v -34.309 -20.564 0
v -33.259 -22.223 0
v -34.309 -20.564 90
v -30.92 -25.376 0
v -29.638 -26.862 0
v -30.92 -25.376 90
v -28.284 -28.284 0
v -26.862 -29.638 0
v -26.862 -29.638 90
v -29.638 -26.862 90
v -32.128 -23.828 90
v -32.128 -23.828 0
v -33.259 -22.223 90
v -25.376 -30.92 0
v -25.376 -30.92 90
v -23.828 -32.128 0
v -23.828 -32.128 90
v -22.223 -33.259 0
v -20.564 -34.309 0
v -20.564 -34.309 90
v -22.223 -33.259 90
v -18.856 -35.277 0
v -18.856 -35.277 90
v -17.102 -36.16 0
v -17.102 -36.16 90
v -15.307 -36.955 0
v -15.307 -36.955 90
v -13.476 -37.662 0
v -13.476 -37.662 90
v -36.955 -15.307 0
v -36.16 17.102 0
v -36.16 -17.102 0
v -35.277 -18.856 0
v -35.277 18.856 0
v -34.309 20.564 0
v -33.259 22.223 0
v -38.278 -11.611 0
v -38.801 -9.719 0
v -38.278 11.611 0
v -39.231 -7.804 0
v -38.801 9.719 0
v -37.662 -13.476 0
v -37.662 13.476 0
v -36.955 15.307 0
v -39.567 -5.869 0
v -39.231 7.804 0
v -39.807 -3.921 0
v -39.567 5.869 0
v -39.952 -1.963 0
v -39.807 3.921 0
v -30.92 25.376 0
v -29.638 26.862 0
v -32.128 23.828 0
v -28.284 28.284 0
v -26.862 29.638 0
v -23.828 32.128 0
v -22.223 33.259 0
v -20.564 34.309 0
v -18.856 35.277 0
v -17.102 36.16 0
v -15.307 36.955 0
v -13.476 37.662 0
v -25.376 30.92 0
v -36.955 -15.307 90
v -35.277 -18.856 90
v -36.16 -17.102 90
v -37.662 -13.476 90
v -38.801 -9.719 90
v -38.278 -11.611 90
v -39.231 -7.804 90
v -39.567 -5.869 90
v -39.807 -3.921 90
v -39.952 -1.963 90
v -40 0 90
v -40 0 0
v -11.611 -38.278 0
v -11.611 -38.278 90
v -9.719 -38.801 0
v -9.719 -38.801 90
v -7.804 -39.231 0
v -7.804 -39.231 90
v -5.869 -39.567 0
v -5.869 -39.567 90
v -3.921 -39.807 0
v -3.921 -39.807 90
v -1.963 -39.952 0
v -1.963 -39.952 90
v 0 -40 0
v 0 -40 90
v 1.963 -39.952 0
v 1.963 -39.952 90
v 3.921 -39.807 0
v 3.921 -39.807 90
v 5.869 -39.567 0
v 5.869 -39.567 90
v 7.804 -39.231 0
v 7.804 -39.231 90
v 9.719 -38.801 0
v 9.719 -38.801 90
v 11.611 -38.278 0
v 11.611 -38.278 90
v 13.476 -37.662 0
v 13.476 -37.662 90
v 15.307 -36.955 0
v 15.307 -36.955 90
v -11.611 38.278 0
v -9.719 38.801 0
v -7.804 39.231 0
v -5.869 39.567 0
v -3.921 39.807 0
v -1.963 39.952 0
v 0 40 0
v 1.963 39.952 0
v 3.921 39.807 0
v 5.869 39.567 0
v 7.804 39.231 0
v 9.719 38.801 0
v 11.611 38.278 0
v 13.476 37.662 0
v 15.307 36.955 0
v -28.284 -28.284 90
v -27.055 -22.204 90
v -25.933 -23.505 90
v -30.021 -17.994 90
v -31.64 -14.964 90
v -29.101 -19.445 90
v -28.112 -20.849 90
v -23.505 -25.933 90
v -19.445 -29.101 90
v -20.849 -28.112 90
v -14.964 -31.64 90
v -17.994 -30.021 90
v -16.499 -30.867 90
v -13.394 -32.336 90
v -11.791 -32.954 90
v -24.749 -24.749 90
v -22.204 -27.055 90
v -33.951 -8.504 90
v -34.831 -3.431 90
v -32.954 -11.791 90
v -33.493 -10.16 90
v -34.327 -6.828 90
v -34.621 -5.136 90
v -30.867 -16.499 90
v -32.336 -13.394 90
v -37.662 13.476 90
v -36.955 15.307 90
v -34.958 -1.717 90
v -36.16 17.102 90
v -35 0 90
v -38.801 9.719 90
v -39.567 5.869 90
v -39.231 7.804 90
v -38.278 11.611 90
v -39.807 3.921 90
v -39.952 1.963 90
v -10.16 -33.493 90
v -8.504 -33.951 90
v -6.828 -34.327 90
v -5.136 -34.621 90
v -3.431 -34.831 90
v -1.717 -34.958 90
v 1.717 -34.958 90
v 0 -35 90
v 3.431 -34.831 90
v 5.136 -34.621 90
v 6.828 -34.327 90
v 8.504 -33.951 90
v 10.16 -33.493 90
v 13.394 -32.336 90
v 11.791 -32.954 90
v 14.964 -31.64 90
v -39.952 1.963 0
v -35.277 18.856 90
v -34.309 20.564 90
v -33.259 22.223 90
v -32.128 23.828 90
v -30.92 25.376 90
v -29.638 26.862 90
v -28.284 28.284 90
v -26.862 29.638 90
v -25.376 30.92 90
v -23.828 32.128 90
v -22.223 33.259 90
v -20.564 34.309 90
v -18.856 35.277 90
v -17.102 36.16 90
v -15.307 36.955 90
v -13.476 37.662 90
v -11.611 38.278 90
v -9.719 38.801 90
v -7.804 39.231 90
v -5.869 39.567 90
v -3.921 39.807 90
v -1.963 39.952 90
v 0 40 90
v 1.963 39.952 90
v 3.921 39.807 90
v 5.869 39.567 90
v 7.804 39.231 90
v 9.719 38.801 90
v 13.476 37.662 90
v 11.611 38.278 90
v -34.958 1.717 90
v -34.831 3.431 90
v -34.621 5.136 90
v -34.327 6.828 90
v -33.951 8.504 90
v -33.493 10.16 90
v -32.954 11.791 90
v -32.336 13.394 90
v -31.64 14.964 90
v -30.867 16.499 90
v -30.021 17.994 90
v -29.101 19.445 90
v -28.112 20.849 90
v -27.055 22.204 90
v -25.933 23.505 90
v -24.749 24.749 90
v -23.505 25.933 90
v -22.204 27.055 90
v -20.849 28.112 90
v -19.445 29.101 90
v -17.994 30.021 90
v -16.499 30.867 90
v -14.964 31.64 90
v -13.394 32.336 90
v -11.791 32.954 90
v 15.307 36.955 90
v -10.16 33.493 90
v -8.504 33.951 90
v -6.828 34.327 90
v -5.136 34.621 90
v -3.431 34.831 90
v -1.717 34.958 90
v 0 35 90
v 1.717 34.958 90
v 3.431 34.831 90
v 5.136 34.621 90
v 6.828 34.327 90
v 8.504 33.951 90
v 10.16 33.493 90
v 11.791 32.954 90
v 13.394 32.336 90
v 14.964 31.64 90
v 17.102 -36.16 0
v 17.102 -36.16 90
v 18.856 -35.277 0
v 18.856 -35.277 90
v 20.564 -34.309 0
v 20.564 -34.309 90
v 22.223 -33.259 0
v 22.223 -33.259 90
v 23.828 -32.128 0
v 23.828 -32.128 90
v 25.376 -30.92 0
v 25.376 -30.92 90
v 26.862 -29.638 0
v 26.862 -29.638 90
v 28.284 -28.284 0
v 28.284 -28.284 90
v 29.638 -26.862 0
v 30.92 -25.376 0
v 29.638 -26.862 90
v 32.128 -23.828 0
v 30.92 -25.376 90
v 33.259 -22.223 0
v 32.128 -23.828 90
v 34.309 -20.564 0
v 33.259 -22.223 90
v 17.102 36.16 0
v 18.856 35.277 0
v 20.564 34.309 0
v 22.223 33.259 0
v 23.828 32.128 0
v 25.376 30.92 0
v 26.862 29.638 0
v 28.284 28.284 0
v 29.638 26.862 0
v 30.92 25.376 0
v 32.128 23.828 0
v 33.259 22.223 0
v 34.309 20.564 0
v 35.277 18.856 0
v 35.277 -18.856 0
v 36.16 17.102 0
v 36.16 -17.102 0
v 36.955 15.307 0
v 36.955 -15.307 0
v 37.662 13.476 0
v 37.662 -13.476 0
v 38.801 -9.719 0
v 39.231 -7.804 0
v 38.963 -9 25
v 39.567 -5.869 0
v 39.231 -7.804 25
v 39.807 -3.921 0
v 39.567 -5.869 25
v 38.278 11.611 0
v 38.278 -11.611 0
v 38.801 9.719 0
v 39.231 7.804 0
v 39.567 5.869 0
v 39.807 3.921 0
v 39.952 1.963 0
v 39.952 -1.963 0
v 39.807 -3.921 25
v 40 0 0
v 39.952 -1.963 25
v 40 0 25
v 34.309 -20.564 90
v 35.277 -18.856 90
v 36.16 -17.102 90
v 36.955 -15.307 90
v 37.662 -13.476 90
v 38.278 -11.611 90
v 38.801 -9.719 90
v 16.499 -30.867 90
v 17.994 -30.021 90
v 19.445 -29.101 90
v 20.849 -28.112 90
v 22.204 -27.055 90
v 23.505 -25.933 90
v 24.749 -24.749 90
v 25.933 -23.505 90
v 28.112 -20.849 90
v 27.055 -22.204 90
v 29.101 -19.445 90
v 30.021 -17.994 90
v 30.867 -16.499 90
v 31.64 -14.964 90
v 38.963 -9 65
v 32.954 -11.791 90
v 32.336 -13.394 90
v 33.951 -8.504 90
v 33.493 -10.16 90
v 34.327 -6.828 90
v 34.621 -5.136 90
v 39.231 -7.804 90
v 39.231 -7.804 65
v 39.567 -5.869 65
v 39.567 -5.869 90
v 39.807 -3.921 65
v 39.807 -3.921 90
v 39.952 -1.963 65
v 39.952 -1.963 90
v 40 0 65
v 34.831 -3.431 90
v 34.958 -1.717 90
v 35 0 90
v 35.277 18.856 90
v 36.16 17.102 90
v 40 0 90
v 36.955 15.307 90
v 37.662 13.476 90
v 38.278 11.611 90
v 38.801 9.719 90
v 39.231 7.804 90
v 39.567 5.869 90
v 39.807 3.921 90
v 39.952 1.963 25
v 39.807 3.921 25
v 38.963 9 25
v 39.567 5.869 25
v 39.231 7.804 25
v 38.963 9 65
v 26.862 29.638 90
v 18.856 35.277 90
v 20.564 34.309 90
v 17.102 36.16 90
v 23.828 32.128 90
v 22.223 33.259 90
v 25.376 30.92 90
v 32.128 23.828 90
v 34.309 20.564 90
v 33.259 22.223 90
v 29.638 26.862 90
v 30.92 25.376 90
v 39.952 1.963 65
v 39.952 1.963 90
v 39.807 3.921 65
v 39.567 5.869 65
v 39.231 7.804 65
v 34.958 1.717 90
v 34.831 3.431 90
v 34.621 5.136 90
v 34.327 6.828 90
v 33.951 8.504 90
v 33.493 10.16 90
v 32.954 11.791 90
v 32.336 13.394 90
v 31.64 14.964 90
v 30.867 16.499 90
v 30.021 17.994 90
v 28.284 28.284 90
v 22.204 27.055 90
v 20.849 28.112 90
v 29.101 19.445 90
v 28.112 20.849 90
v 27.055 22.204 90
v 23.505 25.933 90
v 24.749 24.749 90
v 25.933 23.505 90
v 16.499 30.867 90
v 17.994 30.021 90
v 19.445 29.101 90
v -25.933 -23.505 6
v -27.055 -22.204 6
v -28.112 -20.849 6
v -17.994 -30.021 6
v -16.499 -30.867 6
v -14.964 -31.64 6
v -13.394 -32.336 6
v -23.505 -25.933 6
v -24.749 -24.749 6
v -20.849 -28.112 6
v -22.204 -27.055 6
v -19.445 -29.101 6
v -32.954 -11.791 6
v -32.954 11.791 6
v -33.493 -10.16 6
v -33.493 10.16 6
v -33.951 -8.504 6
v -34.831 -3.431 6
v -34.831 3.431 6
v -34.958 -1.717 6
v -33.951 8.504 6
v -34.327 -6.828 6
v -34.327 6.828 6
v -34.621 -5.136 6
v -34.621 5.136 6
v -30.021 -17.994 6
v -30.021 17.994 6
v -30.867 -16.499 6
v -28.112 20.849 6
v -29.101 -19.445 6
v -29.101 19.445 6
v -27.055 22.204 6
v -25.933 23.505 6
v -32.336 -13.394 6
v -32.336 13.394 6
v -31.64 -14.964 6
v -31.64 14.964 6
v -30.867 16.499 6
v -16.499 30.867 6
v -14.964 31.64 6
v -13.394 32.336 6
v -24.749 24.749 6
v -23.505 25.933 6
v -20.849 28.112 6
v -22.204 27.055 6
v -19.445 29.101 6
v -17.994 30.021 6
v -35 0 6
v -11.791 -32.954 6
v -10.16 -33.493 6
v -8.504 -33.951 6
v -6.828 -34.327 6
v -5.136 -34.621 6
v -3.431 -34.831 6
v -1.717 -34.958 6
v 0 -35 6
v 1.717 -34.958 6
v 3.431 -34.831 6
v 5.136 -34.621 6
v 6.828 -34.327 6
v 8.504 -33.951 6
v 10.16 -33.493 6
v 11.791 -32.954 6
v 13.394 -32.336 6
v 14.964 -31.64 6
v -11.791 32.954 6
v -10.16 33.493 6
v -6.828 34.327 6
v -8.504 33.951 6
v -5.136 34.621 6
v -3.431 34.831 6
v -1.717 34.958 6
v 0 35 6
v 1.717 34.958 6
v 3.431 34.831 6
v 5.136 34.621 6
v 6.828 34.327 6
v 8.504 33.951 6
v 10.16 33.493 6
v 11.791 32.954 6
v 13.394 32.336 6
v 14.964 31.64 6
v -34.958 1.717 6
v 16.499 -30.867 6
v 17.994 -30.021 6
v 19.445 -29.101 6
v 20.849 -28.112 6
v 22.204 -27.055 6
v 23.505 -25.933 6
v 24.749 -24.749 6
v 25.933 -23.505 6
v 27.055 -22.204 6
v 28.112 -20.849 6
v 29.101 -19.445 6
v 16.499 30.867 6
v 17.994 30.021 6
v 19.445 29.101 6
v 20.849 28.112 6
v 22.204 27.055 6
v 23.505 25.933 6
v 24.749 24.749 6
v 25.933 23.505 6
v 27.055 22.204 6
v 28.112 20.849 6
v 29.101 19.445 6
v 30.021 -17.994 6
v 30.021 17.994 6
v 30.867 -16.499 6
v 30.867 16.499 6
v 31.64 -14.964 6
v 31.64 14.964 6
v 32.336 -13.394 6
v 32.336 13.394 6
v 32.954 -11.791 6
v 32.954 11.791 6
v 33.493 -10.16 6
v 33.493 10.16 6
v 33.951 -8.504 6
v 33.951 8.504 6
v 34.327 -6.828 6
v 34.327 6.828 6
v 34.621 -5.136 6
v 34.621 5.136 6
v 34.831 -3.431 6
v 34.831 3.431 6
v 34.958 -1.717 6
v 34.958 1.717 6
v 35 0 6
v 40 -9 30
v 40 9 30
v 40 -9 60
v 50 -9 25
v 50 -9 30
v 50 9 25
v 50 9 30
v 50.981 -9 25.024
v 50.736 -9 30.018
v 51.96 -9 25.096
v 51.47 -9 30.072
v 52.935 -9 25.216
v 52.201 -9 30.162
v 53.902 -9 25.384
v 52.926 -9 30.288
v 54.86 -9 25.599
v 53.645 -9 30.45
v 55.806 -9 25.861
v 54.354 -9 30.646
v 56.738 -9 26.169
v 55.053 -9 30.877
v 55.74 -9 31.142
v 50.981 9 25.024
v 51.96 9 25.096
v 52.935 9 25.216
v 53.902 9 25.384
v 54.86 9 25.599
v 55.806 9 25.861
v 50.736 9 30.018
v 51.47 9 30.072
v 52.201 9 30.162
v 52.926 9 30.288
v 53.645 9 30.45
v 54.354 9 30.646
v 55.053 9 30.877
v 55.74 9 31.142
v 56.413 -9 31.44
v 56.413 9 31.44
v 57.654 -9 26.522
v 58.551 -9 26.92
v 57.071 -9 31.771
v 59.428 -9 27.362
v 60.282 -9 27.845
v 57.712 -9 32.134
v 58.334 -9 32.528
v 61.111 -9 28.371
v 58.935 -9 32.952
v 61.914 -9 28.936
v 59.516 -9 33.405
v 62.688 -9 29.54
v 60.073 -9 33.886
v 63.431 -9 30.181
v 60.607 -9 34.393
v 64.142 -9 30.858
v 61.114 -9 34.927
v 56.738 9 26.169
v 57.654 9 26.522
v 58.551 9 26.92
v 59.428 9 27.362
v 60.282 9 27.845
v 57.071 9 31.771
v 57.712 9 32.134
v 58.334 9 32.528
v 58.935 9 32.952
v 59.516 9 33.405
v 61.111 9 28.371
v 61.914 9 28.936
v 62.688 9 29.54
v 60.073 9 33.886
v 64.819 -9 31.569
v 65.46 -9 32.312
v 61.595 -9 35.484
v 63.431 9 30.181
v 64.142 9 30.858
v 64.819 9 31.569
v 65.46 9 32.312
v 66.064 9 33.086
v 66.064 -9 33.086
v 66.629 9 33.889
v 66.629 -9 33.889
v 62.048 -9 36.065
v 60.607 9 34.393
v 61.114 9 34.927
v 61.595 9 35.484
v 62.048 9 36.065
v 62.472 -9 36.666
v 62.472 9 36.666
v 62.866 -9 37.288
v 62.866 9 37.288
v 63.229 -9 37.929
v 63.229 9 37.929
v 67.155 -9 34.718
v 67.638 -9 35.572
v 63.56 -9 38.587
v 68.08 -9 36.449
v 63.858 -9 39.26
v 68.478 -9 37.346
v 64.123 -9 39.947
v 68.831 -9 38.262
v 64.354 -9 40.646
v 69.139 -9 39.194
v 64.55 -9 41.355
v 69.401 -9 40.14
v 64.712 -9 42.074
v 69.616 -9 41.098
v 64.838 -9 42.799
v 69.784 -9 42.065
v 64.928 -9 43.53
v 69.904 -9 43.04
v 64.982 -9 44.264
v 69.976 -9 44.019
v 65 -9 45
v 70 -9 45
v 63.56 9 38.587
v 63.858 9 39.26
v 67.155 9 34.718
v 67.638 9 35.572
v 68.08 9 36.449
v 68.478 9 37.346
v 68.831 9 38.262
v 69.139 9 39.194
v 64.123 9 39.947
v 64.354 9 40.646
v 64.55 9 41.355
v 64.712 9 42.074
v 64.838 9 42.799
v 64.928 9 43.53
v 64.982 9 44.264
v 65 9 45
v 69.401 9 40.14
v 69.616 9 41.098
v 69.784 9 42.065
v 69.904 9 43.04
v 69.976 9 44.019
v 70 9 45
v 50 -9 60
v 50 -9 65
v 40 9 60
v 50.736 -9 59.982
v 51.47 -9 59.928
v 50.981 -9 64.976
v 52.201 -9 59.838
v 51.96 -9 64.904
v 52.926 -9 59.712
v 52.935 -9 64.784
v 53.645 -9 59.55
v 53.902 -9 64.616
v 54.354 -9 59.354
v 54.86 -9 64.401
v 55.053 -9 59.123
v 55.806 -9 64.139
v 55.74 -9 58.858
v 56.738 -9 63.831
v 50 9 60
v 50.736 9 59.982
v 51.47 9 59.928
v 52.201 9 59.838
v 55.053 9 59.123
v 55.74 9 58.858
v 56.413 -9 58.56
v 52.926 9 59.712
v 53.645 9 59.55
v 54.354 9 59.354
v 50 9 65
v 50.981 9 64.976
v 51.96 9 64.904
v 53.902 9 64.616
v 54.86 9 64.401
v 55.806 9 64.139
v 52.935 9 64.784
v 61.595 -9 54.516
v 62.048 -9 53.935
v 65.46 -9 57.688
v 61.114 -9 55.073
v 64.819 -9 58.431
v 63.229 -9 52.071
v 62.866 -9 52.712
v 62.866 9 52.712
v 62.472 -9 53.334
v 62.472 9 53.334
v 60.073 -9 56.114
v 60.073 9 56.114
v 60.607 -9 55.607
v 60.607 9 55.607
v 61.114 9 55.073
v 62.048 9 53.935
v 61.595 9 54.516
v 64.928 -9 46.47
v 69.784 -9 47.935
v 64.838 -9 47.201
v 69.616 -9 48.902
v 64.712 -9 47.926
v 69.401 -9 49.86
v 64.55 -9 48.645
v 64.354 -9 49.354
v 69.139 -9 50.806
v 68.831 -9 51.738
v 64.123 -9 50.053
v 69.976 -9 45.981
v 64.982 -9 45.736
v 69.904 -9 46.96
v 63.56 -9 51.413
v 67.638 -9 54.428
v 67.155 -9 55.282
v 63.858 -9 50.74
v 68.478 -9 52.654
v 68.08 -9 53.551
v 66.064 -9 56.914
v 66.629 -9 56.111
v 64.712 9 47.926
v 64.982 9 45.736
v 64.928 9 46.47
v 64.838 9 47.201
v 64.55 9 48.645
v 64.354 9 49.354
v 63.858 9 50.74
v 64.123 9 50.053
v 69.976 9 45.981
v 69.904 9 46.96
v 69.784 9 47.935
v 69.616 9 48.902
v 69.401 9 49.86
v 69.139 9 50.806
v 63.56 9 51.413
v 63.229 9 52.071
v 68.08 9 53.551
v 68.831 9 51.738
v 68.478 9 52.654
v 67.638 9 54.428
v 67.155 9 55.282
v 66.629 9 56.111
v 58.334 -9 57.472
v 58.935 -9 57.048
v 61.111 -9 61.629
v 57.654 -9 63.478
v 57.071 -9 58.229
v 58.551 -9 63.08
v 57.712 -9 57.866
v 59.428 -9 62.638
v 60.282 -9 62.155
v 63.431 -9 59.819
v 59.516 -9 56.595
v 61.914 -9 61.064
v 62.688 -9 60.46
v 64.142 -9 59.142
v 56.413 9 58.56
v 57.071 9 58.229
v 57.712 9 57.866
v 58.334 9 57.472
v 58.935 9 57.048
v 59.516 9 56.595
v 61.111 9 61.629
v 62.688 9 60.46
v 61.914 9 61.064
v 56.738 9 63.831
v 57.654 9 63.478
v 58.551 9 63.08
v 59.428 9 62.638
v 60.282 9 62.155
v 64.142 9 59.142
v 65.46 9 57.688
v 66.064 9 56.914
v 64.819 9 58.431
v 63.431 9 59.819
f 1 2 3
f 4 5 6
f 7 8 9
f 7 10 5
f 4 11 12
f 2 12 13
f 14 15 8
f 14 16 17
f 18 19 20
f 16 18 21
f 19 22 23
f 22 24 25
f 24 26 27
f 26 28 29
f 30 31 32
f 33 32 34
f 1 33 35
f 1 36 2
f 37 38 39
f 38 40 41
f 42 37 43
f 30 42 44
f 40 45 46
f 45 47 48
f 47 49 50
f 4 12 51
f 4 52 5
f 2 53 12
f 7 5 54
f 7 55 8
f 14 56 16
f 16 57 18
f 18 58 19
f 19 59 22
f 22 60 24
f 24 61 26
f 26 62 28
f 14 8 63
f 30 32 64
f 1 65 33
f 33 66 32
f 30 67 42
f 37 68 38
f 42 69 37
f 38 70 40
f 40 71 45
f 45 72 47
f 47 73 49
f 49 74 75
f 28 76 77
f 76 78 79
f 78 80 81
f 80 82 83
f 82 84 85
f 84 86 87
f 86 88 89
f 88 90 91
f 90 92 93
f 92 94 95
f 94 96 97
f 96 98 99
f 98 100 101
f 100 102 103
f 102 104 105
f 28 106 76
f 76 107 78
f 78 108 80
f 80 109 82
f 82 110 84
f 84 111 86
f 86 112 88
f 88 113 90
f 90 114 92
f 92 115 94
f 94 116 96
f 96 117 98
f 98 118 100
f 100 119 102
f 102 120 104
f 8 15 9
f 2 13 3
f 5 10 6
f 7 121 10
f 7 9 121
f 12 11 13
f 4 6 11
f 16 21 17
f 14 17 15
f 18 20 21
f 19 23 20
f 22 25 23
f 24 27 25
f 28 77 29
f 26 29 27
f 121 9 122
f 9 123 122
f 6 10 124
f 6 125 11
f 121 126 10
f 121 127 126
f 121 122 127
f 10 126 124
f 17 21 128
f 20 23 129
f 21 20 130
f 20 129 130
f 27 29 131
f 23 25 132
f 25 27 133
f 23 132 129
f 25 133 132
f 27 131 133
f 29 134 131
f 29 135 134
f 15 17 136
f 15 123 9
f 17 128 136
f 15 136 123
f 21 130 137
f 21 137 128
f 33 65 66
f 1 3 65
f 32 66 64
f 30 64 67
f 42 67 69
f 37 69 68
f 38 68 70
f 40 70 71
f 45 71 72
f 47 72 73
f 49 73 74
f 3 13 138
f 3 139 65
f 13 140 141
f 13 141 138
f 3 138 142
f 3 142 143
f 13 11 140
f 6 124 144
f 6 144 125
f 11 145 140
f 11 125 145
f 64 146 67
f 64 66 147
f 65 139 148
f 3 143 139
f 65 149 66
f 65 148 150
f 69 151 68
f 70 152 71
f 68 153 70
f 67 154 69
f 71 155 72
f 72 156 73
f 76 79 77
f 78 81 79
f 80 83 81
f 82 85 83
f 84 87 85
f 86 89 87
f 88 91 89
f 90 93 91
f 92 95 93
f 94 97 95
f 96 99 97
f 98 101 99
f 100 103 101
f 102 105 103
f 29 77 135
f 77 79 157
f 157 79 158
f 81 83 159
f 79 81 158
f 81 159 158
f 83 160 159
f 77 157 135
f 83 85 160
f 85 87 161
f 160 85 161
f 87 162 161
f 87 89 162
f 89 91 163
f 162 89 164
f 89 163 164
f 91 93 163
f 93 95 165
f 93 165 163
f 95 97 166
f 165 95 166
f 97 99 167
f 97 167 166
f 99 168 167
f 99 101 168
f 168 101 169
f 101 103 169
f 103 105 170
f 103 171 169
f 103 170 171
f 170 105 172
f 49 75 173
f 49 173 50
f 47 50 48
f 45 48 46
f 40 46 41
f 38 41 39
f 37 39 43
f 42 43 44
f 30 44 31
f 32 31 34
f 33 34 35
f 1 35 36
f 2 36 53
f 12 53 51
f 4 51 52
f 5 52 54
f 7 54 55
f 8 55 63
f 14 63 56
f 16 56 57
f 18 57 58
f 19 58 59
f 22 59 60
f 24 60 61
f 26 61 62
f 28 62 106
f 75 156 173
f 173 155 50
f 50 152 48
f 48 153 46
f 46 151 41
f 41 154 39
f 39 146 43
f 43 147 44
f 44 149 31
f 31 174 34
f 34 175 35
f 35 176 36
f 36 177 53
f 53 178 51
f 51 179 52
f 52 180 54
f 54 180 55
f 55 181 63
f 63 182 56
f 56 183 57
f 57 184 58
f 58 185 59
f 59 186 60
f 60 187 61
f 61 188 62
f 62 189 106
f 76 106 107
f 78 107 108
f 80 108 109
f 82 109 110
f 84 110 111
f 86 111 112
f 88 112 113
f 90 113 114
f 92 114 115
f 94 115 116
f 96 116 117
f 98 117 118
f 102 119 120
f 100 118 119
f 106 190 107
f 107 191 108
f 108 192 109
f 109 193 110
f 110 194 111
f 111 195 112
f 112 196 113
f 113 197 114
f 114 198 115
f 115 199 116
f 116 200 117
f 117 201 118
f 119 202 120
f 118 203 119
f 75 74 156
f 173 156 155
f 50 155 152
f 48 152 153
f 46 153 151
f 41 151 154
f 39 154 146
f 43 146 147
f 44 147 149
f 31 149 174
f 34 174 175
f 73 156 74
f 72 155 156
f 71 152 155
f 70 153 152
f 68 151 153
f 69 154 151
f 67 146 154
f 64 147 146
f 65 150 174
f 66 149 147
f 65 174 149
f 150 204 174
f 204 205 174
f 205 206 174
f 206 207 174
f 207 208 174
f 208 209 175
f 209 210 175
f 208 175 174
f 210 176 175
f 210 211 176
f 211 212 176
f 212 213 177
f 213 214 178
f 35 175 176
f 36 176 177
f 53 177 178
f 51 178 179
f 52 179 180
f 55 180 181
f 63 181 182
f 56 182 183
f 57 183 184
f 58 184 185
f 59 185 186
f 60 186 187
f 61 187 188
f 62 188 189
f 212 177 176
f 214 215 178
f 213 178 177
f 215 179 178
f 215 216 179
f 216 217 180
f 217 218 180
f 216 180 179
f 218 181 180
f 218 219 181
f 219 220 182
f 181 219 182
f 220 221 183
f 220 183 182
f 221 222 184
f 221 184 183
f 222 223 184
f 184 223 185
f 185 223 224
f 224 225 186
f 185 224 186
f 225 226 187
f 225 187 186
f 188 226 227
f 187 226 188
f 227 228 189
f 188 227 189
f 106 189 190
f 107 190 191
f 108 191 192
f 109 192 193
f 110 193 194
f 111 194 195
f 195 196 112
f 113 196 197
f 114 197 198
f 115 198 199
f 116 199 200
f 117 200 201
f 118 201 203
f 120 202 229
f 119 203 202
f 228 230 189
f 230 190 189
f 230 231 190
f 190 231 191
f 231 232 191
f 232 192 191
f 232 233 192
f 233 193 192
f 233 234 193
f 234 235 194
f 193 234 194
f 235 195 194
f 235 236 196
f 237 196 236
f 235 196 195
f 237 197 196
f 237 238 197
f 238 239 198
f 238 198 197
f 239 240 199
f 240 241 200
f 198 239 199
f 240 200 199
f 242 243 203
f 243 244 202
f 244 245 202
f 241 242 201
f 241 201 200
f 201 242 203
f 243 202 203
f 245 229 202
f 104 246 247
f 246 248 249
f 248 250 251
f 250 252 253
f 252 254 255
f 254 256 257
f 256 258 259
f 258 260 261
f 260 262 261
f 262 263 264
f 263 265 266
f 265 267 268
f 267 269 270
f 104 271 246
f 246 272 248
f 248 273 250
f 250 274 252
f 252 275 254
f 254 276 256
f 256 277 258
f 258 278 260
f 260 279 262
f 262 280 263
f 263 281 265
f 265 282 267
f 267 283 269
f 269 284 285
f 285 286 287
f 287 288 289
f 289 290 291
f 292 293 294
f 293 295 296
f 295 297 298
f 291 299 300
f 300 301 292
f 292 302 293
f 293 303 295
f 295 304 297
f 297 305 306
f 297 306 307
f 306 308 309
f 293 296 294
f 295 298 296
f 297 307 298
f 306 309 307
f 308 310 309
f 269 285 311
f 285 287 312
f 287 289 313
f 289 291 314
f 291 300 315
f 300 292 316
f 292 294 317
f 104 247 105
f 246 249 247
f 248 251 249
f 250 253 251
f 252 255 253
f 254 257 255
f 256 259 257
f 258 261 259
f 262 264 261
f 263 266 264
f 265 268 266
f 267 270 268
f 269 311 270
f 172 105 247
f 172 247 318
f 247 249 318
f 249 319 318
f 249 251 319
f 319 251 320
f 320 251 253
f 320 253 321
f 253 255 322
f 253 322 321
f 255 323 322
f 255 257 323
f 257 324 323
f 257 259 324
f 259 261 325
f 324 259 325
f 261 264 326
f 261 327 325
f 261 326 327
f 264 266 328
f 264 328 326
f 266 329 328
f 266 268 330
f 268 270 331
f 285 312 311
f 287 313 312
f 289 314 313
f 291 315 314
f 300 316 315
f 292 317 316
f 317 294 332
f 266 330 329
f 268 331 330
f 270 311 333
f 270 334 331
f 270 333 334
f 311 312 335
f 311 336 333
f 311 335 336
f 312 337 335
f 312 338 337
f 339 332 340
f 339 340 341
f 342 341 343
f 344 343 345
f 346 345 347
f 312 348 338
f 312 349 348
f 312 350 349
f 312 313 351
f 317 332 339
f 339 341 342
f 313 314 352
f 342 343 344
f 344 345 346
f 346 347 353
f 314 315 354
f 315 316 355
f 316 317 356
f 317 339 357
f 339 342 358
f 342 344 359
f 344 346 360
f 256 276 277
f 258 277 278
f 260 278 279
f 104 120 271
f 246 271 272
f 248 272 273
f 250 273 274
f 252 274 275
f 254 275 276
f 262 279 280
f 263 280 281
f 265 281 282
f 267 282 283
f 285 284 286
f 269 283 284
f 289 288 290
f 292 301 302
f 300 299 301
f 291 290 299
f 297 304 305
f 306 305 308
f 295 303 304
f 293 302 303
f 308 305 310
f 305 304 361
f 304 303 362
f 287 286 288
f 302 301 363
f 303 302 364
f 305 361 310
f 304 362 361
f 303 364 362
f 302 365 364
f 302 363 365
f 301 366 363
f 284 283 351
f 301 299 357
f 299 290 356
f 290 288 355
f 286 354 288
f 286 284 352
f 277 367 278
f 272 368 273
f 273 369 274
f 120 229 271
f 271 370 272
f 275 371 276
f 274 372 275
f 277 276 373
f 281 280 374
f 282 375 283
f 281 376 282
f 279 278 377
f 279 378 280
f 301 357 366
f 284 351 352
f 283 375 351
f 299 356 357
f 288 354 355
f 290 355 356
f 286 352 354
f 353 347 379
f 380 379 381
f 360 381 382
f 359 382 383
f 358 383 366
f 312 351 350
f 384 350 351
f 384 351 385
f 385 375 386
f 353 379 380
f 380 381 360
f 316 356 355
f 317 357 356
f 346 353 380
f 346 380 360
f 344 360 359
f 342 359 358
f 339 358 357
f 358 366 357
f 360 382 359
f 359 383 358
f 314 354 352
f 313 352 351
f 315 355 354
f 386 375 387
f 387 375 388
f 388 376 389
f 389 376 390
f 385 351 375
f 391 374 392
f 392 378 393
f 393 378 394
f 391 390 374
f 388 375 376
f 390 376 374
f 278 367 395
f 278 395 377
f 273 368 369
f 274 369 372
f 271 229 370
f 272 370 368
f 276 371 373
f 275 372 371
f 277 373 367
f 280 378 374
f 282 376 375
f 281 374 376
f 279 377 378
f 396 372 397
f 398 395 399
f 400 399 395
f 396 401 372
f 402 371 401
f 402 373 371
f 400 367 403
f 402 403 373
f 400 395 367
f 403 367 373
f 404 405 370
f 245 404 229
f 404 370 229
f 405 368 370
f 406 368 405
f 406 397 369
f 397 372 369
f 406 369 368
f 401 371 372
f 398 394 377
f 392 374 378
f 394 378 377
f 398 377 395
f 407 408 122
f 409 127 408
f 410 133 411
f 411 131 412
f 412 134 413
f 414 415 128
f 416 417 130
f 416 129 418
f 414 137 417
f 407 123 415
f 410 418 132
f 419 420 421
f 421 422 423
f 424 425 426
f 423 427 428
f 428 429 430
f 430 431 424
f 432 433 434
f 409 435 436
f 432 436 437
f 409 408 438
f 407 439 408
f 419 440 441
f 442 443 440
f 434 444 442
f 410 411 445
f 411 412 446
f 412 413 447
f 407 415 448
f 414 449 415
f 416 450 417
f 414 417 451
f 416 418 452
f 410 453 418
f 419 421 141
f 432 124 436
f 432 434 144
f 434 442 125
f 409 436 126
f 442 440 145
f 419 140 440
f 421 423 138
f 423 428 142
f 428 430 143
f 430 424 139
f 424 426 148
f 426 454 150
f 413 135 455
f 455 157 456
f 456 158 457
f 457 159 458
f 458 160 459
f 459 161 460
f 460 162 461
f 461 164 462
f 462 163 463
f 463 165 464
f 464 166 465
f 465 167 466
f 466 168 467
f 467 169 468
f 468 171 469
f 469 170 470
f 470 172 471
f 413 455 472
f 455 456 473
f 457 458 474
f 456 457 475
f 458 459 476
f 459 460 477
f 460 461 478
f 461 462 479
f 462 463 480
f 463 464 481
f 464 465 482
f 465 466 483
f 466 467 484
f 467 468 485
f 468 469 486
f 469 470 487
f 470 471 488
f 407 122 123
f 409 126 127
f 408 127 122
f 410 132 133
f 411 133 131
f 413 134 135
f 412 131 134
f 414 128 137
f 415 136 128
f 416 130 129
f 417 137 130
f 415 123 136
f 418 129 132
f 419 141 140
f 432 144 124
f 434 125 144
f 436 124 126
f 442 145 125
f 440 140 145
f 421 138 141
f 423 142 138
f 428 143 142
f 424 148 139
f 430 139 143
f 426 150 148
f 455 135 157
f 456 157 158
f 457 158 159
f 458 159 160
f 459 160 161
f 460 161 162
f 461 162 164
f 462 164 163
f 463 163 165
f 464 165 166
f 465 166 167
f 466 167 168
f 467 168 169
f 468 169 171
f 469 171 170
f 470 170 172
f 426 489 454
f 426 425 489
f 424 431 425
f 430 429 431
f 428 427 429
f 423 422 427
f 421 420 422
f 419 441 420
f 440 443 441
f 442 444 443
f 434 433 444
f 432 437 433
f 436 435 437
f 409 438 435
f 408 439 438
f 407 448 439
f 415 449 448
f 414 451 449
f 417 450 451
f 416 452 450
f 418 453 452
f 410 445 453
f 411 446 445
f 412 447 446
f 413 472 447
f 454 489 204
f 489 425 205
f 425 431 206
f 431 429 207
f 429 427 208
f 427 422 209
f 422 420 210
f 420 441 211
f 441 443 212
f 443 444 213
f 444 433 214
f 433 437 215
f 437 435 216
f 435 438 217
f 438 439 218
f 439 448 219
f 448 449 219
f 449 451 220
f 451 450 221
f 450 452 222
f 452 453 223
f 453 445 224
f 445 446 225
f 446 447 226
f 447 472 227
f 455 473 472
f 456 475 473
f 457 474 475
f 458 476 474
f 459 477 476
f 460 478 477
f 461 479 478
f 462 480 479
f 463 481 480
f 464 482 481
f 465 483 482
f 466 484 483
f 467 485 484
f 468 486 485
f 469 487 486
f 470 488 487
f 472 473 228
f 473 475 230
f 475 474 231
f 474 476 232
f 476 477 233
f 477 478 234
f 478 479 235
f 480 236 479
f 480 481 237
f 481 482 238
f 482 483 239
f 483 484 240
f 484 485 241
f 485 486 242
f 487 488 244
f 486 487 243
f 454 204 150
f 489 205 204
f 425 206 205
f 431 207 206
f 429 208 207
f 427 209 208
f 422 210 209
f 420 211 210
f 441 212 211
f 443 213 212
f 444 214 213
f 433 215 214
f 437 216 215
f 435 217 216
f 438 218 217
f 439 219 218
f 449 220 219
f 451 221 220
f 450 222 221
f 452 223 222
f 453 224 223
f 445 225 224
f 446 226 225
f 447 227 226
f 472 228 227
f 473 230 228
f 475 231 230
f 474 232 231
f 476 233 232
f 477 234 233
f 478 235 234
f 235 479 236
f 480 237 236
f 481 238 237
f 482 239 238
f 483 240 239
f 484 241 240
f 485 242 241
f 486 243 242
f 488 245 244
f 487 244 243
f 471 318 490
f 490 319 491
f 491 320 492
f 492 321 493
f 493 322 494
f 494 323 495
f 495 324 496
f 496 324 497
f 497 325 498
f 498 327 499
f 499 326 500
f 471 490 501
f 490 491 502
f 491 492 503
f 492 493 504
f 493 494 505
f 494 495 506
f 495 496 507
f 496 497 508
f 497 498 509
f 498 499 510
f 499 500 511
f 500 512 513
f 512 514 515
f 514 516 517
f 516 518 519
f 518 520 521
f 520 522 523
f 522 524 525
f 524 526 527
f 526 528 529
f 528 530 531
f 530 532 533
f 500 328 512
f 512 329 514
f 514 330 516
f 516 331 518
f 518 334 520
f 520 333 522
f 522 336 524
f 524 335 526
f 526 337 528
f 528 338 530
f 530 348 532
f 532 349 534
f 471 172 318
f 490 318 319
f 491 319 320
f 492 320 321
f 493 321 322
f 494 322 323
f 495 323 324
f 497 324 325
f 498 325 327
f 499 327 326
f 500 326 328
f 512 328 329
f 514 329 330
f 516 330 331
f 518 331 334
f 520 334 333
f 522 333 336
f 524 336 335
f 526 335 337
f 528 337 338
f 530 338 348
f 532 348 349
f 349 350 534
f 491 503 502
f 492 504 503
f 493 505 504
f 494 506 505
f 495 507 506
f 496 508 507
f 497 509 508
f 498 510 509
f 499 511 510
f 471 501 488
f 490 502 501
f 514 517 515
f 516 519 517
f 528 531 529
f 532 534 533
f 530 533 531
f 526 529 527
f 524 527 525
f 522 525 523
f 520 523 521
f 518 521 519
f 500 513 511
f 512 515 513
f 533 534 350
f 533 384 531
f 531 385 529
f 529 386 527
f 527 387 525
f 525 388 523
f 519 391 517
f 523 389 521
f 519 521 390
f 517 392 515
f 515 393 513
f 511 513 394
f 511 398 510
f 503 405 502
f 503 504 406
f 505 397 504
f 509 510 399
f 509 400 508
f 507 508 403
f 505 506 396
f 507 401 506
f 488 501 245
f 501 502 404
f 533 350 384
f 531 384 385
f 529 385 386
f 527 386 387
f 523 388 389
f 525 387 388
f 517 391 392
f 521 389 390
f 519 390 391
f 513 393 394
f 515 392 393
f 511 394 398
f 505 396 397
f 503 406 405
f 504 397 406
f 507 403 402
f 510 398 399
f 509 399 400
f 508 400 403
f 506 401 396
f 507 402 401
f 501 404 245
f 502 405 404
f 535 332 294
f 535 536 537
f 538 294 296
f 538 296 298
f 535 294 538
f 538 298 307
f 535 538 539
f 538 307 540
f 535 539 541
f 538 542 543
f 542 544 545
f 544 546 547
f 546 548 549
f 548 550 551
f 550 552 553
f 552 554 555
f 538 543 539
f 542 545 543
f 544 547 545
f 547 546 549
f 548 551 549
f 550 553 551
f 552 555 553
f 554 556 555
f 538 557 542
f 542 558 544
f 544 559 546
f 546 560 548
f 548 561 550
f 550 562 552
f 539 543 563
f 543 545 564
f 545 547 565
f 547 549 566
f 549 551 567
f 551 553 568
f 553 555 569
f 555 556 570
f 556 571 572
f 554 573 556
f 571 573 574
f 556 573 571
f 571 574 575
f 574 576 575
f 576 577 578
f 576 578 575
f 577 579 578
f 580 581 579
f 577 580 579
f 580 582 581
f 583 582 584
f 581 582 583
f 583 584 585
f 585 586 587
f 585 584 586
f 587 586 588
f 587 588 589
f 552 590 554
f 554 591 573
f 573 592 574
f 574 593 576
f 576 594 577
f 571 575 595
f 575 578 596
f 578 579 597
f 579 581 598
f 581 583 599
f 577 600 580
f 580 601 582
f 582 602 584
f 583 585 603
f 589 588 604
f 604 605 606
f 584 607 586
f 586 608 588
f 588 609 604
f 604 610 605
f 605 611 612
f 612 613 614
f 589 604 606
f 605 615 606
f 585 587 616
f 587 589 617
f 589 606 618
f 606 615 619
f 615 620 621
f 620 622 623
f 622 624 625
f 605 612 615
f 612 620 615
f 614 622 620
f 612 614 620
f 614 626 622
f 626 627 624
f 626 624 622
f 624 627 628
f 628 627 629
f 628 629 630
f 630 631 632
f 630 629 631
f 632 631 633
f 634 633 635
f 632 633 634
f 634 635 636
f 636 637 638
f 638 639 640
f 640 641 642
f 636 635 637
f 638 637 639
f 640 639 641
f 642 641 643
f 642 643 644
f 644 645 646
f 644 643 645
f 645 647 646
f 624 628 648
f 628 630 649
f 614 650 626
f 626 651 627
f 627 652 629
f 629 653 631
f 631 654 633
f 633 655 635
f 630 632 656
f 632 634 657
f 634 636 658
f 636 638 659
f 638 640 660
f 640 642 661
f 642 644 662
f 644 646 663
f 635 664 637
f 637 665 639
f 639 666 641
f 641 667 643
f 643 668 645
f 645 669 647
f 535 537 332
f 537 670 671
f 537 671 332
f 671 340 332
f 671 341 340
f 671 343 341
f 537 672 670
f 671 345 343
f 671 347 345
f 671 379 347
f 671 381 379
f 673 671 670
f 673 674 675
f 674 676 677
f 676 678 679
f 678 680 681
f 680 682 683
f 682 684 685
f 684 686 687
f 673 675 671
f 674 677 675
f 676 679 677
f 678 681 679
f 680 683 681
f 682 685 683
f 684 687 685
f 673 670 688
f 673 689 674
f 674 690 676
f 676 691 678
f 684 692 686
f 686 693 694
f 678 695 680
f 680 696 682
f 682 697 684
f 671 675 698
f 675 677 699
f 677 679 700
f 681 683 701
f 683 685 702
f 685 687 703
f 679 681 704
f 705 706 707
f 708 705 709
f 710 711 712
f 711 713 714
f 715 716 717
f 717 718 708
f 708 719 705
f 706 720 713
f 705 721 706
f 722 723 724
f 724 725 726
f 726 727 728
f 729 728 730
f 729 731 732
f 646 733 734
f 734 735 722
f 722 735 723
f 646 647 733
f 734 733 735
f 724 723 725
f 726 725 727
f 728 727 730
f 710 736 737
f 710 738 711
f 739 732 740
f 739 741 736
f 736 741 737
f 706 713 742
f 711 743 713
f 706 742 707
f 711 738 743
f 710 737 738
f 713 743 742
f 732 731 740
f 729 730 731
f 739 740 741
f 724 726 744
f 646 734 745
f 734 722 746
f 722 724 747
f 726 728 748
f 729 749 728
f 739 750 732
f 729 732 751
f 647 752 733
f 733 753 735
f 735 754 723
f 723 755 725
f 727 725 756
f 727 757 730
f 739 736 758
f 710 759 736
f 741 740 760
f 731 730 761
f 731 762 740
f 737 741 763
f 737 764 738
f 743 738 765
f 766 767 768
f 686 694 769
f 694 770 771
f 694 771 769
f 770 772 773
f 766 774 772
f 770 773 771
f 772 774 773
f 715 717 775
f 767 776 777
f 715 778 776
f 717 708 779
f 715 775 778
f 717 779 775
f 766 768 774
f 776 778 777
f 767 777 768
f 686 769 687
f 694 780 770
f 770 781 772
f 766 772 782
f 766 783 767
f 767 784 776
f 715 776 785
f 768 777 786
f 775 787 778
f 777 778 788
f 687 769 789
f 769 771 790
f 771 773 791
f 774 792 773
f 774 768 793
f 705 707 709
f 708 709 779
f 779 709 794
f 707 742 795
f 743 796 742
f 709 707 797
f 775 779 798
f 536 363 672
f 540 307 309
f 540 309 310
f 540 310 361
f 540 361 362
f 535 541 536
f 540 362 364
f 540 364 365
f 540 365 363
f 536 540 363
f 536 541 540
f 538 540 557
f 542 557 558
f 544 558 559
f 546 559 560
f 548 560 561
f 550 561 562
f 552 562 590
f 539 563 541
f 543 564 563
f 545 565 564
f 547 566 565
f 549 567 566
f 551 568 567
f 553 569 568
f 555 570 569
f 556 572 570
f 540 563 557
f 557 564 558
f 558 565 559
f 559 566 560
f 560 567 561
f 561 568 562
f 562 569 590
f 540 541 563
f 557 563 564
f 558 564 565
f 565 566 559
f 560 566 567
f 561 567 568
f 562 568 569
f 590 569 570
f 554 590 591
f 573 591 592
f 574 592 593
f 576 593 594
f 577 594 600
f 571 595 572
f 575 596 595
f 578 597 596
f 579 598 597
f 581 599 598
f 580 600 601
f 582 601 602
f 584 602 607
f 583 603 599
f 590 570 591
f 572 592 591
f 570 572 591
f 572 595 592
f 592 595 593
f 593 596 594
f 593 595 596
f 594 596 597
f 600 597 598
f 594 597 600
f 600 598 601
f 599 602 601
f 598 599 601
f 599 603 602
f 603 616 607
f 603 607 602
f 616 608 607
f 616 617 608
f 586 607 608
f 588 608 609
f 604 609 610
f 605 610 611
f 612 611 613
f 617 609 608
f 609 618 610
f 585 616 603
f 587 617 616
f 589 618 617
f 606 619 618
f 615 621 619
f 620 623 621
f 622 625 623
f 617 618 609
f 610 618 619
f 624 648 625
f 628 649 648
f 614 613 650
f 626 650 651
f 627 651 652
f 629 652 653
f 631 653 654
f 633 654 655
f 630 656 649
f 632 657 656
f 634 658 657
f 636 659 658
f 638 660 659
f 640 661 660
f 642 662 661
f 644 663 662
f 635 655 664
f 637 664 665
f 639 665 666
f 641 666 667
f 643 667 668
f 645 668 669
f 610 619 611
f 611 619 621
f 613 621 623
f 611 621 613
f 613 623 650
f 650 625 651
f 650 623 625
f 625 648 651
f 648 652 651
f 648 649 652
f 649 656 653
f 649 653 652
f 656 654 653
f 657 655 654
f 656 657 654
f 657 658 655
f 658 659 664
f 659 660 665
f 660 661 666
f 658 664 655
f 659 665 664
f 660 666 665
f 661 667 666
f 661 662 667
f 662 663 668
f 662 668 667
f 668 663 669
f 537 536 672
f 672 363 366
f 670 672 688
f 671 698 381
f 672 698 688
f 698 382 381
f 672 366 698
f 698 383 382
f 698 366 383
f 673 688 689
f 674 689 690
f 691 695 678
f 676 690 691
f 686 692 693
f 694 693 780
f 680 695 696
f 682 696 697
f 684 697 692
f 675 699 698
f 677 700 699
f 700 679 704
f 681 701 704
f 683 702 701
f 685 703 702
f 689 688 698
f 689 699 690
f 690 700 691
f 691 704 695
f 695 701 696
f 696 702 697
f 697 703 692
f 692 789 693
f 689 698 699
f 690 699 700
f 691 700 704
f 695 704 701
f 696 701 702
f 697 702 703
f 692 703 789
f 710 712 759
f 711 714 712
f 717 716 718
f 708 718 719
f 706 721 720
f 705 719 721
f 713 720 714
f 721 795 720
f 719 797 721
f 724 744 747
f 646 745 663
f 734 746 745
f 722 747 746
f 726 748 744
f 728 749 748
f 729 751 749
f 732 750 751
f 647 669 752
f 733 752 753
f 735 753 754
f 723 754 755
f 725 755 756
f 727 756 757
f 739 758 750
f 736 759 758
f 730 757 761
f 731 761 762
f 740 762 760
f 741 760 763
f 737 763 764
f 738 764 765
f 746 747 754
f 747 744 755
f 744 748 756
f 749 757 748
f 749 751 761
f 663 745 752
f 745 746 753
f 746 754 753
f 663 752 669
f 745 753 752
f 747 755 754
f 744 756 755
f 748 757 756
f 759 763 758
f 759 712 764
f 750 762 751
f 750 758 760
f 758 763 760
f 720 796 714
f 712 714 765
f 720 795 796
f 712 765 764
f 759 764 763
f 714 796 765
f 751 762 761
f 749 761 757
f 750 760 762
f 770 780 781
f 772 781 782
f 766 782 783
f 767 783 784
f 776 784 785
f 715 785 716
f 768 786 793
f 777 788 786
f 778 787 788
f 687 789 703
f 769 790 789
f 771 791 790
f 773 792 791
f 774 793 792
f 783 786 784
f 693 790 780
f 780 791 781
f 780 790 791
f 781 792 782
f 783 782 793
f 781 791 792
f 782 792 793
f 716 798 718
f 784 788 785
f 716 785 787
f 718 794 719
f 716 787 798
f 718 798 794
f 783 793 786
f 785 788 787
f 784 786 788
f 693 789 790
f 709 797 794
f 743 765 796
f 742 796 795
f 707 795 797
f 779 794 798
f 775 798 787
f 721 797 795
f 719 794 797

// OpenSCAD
$fn = 128;

// Mug body parameters
outer_height = 90;
outer_radius = 40;
inner_radius = 35;
bottom_thickness = 6;

// Handle parameters
handle_wall = 5;
handle_inner_height = 30;
handle_inner_width = 25;
handle_depth = 18;

module mug_body() {
    difference() {
        cylinder(h = outer_height, r = outer_radius);
        translate([0, 0, bottom_thickness])
            cylinder(h = outer_height - bottom_thickness, r = inner_radius);
    }
}

module semicircle(r) {
    intersection() {
        circle(r = r);
        translate([0, -r]) square([r, 2 * r]);
    }
}

module d_profile(rect_w, height, radius) {
    union() {
        translate([0, -height / 2])
            square([rect_w, height]);
        translate([rect_w, 0])
            semicircle(radius);
    }
}

module mug_handle() {
    inner_r = handle_inner_height / 2;
    outer_h = handle_inner_height + 2 * handle_wall;
    outer_r = outer_h / 2;
    inner_rect_w = handle_inner_width - inner_r;
    outer_total_w = handle_inner_width + 2 * handle_wall;
    outer_rect_w = outer_total_w - outer_r;

    module handle_2d() {
        difference() {
            d_profile(outer_rect_w, outer_h, outer_r);
            translate([handle_wall, 0])
                d_profile(inner_rect_w, handle_inner_height, inner_r);
        }
    }

    translate([outer_radius - handle_wall, 0, outer_height / 2])
        rotate([90, 0, 0])
            linear_extrude(height = handle_depth, center = true, convexity = 10)
                handle_2d();
}

union() {
    mug_body();
    mug_handle();
}
